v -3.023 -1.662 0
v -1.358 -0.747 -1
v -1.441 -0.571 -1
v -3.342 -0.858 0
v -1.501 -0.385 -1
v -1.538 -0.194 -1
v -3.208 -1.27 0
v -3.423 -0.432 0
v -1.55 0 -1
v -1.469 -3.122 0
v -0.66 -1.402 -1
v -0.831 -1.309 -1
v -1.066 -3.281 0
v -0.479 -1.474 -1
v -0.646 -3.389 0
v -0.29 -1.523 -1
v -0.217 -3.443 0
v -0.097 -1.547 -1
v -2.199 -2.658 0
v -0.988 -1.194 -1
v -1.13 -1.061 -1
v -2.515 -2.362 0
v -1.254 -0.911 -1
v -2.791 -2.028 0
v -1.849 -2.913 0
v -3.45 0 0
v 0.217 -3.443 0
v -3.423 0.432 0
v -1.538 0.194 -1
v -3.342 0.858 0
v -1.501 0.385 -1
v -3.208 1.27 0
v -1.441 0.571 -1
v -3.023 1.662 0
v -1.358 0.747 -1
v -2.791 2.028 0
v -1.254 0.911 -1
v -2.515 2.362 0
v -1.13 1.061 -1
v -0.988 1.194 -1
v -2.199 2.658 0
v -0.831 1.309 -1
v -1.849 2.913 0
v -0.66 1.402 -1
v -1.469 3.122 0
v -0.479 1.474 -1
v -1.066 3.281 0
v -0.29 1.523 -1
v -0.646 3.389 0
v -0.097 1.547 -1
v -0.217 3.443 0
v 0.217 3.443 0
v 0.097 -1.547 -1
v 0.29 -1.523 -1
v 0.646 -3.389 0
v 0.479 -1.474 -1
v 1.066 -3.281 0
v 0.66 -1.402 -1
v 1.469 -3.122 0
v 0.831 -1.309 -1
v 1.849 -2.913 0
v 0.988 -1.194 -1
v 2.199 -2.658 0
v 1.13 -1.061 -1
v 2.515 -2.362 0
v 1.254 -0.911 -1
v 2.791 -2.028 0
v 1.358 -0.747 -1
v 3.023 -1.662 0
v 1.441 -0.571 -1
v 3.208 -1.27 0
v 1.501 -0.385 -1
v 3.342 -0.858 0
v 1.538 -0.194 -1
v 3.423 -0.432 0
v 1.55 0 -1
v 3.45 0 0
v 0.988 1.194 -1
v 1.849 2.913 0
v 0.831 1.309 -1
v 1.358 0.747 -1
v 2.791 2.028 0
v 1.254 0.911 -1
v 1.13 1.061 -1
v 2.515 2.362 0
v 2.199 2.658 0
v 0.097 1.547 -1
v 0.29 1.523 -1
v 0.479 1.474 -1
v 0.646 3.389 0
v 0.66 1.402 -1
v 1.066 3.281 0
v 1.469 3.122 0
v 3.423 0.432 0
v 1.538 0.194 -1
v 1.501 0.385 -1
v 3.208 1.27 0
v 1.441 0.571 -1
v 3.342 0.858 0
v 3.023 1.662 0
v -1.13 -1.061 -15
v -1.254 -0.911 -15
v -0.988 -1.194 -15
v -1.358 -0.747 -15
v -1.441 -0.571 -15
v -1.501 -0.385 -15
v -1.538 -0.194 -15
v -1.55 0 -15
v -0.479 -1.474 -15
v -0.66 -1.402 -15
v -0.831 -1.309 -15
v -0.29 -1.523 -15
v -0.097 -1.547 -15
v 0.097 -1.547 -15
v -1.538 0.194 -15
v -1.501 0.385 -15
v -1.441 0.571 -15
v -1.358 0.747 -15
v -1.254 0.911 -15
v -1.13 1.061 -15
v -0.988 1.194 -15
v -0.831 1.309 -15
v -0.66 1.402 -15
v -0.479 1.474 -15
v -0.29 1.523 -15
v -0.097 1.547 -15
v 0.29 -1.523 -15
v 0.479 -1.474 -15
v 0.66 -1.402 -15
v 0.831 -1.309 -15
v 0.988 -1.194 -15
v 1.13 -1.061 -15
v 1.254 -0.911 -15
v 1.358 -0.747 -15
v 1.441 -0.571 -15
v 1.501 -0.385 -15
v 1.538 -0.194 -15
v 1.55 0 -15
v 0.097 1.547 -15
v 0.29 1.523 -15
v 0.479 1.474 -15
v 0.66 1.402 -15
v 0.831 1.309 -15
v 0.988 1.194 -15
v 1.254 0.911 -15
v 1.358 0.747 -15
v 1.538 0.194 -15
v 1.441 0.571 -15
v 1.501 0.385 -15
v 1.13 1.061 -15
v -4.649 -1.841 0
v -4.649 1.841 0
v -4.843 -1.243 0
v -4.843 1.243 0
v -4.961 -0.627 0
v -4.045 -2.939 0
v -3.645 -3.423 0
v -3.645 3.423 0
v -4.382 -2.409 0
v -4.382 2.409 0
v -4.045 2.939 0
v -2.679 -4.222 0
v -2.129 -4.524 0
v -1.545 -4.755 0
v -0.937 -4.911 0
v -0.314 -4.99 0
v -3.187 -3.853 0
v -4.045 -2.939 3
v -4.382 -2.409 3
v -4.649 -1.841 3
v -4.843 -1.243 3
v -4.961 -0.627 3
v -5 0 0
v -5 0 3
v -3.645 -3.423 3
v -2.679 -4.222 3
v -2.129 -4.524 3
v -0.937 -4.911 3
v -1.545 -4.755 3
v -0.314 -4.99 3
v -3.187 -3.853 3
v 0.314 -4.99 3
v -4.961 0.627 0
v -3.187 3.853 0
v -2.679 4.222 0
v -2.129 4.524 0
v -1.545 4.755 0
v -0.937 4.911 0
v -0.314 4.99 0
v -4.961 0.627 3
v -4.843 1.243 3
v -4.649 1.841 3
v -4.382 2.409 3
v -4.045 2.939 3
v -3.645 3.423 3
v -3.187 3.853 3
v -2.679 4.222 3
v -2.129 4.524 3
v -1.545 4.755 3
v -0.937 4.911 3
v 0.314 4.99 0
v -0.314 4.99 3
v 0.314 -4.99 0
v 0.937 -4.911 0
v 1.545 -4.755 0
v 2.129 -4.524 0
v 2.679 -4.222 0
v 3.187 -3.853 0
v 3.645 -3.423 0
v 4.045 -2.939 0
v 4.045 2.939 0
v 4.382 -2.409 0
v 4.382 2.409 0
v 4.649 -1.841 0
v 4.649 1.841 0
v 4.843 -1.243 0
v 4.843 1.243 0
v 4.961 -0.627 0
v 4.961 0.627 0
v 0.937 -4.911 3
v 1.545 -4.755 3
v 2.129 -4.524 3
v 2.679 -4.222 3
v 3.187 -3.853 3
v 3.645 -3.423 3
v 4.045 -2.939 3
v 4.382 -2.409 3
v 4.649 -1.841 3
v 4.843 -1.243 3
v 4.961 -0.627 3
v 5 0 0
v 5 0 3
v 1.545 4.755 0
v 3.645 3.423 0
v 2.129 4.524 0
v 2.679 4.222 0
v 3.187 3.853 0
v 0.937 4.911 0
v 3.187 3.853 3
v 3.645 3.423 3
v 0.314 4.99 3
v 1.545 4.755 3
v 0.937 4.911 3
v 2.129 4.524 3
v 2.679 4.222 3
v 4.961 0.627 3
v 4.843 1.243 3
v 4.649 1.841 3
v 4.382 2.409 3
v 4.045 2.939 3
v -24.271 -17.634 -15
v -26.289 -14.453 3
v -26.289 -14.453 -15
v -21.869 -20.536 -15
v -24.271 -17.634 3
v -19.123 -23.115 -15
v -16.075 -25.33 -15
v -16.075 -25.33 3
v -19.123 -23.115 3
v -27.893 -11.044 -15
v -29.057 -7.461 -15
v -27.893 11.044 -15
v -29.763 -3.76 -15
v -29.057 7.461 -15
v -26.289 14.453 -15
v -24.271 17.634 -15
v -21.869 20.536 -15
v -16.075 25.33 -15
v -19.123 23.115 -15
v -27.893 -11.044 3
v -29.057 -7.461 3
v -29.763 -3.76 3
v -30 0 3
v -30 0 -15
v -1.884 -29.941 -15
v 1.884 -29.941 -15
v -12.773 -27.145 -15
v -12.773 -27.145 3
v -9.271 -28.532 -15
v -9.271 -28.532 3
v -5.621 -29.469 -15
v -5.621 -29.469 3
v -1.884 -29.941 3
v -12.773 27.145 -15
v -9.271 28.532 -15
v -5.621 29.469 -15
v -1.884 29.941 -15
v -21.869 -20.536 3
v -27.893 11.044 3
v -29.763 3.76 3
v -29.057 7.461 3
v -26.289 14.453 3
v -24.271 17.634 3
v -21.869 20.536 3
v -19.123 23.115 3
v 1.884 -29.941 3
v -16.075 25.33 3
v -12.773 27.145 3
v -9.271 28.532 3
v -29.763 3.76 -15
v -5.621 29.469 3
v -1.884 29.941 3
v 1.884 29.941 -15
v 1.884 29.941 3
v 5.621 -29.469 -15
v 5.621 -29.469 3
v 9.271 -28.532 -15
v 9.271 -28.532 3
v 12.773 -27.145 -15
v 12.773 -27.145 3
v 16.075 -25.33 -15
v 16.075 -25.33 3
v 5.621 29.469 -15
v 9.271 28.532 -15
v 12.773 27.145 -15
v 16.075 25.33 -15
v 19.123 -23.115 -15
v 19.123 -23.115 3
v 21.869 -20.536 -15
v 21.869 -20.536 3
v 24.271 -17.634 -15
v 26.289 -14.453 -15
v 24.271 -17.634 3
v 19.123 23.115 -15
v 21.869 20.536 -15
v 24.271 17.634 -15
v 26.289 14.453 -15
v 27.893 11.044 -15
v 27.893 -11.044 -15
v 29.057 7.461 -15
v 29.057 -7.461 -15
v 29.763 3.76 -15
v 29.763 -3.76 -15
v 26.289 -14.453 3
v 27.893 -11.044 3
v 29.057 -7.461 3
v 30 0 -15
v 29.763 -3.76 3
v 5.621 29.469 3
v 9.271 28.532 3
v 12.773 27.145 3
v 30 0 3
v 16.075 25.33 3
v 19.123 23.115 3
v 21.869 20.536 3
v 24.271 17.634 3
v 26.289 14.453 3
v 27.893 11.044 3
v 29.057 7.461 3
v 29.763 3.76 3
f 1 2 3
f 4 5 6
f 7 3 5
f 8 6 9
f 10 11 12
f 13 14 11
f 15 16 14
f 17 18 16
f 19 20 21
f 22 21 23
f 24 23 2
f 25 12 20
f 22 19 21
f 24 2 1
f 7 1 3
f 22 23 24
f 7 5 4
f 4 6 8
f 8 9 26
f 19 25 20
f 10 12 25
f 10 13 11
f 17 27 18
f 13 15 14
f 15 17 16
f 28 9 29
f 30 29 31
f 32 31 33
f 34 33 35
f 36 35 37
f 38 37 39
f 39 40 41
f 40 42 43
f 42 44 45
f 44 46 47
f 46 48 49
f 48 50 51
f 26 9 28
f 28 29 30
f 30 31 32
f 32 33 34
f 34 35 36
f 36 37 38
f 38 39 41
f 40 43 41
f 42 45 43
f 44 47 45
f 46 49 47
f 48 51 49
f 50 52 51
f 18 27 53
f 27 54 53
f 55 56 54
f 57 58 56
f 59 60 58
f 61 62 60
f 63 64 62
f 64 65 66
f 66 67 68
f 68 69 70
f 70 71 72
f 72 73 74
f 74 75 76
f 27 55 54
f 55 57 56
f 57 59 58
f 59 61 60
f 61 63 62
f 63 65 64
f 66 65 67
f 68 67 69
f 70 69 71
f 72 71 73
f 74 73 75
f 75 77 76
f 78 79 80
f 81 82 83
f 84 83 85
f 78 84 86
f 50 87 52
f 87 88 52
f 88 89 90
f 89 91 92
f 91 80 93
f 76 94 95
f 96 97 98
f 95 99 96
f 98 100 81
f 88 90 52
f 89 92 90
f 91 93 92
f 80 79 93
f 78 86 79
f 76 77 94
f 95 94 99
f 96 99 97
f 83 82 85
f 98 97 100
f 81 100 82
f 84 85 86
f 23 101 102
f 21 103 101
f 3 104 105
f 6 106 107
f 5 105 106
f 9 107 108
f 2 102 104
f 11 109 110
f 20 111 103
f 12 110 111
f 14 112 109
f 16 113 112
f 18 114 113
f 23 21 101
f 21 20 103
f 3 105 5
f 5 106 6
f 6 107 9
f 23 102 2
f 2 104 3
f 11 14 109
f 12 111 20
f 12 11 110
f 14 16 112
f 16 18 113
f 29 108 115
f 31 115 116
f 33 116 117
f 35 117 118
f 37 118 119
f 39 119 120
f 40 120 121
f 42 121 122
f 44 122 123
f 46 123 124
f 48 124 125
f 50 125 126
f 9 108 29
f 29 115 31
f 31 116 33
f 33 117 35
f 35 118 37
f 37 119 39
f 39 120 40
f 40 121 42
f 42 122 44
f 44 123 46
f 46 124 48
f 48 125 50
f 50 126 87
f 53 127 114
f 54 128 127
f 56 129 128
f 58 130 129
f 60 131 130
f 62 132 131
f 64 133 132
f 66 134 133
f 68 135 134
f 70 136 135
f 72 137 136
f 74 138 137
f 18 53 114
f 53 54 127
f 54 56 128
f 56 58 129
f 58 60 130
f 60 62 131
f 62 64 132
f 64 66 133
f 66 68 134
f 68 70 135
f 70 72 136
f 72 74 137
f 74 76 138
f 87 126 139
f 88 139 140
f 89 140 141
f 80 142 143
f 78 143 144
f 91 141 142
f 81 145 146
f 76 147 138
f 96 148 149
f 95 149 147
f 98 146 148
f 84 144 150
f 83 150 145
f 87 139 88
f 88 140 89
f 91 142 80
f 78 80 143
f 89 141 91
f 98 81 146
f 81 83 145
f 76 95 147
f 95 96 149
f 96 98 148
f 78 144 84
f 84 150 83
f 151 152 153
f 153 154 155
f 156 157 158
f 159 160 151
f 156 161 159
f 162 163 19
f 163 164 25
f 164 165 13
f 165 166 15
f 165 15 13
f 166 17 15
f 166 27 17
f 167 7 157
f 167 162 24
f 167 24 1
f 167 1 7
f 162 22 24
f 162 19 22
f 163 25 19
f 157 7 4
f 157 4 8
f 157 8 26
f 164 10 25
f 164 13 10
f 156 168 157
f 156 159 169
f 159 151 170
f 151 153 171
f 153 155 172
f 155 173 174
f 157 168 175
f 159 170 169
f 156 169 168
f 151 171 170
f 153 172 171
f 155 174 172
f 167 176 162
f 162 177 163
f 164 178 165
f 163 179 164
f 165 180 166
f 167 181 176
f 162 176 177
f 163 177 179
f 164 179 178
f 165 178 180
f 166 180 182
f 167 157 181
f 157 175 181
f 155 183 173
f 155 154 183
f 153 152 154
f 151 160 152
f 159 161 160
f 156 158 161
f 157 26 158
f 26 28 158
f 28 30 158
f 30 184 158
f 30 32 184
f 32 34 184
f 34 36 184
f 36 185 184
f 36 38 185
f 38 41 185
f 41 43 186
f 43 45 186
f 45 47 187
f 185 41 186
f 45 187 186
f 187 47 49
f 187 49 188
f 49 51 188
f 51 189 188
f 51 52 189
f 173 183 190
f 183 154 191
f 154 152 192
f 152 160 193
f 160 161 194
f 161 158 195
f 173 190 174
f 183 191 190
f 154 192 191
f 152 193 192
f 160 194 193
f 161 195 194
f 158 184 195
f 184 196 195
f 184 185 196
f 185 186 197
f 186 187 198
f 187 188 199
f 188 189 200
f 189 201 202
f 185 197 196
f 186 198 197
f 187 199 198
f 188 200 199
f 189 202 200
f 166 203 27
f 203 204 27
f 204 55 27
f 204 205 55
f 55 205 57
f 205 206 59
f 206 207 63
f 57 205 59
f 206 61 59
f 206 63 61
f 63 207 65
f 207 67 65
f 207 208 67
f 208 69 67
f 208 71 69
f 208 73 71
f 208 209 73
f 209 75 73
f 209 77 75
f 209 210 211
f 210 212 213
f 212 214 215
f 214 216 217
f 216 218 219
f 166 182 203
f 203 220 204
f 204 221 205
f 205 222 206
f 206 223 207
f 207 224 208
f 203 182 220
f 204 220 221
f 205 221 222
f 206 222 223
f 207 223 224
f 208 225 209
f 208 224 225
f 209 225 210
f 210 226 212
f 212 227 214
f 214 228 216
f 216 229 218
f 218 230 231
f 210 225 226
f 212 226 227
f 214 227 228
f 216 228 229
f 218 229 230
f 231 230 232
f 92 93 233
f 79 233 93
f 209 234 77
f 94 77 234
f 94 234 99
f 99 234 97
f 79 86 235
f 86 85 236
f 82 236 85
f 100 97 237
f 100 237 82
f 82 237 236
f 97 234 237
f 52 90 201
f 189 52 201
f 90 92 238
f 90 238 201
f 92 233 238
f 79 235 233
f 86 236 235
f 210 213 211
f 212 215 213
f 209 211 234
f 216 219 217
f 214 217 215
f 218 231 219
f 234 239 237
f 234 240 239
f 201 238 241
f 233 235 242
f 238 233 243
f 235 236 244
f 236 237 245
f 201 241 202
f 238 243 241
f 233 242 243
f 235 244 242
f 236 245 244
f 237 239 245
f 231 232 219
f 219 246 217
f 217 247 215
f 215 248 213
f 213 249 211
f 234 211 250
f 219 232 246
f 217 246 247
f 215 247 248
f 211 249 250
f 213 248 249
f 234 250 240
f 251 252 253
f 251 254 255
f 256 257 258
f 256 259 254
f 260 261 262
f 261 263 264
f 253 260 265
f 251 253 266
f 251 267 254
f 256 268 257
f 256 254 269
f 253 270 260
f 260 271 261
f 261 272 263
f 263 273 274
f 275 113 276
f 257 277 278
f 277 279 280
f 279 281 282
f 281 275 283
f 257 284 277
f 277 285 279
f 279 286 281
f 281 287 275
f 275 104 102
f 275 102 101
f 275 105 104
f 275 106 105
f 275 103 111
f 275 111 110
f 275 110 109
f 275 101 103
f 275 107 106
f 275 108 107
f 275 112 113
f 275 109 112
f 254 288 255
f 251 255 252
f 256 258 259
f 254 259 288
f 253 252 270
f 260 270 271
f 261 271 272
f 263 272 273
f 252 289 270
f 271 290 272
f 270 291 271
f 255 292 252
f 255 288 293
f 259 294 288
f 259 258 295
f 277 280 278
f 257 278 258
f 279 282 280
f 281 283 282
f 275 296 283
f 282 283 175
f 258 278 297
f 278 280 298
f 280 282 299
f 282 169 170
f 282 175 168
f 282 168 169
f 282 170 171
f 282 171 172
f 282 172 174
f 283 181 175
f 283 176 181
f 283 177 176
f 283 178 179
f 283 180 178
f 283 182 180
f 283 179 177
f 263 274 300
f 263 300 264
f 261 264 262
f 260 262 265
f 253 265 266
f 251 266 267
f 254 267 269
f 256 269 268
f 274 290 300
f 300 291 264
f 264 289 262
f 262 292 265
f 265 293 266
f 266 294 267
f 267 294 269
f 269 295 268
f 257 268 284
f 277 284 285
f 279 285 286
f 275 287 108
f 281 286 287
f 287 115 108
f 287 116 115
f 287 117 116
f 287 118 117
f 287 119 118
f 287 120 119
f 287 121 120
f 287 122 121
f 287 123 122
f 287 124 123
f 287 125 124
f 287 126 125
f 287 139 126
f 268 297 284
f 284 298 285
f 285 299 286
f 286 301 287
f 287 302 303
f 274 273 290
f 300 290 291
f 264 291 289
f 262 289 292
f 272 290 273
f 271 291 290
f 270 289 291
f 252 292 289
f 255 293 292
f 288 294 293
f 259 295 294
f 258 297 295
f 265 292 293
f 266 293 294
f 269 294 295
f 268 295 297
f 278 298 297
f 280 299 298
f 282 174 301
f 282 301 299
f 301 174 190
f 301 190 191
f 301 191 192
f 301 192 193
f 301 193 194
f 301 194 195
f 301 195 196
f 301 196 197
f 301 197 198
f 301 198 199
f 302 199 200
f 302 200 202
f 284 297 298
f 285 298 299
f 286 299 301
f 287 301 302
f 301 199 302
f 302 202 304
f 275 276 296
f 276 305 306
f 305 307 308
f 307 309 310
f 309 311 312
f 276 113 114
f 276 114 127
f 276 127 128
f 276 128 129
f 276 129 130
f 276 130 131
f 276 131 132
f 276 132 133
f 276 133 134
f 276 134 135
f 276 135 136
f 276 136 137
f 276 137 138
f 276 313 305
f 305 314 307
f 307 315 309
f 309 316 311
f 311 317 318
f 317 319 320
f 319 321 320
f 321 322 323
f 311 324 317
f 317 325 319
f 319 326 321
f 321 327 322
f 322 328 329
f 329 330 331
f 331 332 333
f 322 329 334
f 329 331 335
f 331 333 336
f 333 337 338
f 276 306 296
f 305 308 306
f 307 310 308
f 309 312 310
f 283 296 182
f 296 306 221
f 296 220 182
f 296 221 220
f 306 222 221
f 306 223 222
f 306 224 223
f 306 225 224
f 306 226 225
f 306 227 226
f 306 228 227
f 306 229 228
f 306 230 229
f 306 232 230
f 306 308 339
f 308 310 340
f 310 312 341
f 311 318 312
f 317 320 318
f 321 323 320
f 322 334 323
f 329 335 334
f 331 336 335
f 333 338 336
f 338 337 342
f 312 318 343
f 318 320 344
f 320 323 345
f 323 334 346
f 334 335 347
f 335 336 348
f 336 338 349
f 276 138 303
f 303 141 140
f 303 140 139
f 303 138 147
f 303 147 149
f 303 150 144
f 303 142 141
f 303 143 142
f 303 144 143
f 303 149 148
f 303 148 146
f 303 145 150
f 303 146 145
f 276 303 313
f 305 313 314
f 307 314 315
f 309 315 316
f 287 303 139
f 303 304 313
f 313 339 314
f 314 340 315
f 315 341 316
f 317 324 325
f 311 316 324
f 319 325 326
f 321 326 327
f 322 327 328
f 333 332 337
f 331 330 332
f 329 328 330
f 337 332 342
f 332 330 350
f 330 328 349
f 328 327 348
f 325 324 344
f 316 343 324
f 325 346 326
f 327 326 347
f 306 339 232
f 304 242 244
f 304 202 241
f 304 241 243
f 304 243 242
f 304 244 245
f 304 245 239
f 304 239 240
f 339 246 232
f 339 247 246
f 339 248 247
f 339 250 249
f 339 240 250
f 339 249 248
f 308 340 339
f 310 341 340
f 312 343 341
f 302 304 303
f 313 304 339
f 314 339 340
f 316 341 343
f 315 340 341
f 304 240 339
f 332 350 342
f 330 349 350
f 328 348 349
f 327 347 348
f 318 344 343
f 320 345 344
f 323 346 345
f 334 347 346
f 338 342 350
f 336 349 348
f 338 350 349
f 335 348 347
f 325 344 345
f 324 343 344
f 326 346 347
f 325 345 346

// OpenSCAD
$fn = 50;


difference() {
	union() {
		translate(v = [0, 0, -15.0000000000]) {
			cylinder(h = 18, r = 30.0000000000);
		}
	}
	union() {
		translate(v = [0, 0, 0]) {
			rotate(a = [0, 0, 0]) {
				difference() {
					union() {
						translate(v = [0, 0, -18.0000000000]) {
							cylinder(h = 18, r = 1.2500000000);
						}
						translate(v = [0, 0, -1.0000000000]) {
							cylinder(h = 1.0000000000, r1 = 1.5500000000, r2 = 3.4500000000);
						}
						translate(v = [0, 0, -18.0000000000]) {
							cylinder(h = 18, r = 1.5500000000);
						}
						translate(v = [0, 0, -18.0000000000]) {
							cylinder(h = 18, r = 1.2500000000);
						}
					}
					union();
				}
			}
		}
		#cylinder(h = 3, r = 5.0000000000);
	}
}
